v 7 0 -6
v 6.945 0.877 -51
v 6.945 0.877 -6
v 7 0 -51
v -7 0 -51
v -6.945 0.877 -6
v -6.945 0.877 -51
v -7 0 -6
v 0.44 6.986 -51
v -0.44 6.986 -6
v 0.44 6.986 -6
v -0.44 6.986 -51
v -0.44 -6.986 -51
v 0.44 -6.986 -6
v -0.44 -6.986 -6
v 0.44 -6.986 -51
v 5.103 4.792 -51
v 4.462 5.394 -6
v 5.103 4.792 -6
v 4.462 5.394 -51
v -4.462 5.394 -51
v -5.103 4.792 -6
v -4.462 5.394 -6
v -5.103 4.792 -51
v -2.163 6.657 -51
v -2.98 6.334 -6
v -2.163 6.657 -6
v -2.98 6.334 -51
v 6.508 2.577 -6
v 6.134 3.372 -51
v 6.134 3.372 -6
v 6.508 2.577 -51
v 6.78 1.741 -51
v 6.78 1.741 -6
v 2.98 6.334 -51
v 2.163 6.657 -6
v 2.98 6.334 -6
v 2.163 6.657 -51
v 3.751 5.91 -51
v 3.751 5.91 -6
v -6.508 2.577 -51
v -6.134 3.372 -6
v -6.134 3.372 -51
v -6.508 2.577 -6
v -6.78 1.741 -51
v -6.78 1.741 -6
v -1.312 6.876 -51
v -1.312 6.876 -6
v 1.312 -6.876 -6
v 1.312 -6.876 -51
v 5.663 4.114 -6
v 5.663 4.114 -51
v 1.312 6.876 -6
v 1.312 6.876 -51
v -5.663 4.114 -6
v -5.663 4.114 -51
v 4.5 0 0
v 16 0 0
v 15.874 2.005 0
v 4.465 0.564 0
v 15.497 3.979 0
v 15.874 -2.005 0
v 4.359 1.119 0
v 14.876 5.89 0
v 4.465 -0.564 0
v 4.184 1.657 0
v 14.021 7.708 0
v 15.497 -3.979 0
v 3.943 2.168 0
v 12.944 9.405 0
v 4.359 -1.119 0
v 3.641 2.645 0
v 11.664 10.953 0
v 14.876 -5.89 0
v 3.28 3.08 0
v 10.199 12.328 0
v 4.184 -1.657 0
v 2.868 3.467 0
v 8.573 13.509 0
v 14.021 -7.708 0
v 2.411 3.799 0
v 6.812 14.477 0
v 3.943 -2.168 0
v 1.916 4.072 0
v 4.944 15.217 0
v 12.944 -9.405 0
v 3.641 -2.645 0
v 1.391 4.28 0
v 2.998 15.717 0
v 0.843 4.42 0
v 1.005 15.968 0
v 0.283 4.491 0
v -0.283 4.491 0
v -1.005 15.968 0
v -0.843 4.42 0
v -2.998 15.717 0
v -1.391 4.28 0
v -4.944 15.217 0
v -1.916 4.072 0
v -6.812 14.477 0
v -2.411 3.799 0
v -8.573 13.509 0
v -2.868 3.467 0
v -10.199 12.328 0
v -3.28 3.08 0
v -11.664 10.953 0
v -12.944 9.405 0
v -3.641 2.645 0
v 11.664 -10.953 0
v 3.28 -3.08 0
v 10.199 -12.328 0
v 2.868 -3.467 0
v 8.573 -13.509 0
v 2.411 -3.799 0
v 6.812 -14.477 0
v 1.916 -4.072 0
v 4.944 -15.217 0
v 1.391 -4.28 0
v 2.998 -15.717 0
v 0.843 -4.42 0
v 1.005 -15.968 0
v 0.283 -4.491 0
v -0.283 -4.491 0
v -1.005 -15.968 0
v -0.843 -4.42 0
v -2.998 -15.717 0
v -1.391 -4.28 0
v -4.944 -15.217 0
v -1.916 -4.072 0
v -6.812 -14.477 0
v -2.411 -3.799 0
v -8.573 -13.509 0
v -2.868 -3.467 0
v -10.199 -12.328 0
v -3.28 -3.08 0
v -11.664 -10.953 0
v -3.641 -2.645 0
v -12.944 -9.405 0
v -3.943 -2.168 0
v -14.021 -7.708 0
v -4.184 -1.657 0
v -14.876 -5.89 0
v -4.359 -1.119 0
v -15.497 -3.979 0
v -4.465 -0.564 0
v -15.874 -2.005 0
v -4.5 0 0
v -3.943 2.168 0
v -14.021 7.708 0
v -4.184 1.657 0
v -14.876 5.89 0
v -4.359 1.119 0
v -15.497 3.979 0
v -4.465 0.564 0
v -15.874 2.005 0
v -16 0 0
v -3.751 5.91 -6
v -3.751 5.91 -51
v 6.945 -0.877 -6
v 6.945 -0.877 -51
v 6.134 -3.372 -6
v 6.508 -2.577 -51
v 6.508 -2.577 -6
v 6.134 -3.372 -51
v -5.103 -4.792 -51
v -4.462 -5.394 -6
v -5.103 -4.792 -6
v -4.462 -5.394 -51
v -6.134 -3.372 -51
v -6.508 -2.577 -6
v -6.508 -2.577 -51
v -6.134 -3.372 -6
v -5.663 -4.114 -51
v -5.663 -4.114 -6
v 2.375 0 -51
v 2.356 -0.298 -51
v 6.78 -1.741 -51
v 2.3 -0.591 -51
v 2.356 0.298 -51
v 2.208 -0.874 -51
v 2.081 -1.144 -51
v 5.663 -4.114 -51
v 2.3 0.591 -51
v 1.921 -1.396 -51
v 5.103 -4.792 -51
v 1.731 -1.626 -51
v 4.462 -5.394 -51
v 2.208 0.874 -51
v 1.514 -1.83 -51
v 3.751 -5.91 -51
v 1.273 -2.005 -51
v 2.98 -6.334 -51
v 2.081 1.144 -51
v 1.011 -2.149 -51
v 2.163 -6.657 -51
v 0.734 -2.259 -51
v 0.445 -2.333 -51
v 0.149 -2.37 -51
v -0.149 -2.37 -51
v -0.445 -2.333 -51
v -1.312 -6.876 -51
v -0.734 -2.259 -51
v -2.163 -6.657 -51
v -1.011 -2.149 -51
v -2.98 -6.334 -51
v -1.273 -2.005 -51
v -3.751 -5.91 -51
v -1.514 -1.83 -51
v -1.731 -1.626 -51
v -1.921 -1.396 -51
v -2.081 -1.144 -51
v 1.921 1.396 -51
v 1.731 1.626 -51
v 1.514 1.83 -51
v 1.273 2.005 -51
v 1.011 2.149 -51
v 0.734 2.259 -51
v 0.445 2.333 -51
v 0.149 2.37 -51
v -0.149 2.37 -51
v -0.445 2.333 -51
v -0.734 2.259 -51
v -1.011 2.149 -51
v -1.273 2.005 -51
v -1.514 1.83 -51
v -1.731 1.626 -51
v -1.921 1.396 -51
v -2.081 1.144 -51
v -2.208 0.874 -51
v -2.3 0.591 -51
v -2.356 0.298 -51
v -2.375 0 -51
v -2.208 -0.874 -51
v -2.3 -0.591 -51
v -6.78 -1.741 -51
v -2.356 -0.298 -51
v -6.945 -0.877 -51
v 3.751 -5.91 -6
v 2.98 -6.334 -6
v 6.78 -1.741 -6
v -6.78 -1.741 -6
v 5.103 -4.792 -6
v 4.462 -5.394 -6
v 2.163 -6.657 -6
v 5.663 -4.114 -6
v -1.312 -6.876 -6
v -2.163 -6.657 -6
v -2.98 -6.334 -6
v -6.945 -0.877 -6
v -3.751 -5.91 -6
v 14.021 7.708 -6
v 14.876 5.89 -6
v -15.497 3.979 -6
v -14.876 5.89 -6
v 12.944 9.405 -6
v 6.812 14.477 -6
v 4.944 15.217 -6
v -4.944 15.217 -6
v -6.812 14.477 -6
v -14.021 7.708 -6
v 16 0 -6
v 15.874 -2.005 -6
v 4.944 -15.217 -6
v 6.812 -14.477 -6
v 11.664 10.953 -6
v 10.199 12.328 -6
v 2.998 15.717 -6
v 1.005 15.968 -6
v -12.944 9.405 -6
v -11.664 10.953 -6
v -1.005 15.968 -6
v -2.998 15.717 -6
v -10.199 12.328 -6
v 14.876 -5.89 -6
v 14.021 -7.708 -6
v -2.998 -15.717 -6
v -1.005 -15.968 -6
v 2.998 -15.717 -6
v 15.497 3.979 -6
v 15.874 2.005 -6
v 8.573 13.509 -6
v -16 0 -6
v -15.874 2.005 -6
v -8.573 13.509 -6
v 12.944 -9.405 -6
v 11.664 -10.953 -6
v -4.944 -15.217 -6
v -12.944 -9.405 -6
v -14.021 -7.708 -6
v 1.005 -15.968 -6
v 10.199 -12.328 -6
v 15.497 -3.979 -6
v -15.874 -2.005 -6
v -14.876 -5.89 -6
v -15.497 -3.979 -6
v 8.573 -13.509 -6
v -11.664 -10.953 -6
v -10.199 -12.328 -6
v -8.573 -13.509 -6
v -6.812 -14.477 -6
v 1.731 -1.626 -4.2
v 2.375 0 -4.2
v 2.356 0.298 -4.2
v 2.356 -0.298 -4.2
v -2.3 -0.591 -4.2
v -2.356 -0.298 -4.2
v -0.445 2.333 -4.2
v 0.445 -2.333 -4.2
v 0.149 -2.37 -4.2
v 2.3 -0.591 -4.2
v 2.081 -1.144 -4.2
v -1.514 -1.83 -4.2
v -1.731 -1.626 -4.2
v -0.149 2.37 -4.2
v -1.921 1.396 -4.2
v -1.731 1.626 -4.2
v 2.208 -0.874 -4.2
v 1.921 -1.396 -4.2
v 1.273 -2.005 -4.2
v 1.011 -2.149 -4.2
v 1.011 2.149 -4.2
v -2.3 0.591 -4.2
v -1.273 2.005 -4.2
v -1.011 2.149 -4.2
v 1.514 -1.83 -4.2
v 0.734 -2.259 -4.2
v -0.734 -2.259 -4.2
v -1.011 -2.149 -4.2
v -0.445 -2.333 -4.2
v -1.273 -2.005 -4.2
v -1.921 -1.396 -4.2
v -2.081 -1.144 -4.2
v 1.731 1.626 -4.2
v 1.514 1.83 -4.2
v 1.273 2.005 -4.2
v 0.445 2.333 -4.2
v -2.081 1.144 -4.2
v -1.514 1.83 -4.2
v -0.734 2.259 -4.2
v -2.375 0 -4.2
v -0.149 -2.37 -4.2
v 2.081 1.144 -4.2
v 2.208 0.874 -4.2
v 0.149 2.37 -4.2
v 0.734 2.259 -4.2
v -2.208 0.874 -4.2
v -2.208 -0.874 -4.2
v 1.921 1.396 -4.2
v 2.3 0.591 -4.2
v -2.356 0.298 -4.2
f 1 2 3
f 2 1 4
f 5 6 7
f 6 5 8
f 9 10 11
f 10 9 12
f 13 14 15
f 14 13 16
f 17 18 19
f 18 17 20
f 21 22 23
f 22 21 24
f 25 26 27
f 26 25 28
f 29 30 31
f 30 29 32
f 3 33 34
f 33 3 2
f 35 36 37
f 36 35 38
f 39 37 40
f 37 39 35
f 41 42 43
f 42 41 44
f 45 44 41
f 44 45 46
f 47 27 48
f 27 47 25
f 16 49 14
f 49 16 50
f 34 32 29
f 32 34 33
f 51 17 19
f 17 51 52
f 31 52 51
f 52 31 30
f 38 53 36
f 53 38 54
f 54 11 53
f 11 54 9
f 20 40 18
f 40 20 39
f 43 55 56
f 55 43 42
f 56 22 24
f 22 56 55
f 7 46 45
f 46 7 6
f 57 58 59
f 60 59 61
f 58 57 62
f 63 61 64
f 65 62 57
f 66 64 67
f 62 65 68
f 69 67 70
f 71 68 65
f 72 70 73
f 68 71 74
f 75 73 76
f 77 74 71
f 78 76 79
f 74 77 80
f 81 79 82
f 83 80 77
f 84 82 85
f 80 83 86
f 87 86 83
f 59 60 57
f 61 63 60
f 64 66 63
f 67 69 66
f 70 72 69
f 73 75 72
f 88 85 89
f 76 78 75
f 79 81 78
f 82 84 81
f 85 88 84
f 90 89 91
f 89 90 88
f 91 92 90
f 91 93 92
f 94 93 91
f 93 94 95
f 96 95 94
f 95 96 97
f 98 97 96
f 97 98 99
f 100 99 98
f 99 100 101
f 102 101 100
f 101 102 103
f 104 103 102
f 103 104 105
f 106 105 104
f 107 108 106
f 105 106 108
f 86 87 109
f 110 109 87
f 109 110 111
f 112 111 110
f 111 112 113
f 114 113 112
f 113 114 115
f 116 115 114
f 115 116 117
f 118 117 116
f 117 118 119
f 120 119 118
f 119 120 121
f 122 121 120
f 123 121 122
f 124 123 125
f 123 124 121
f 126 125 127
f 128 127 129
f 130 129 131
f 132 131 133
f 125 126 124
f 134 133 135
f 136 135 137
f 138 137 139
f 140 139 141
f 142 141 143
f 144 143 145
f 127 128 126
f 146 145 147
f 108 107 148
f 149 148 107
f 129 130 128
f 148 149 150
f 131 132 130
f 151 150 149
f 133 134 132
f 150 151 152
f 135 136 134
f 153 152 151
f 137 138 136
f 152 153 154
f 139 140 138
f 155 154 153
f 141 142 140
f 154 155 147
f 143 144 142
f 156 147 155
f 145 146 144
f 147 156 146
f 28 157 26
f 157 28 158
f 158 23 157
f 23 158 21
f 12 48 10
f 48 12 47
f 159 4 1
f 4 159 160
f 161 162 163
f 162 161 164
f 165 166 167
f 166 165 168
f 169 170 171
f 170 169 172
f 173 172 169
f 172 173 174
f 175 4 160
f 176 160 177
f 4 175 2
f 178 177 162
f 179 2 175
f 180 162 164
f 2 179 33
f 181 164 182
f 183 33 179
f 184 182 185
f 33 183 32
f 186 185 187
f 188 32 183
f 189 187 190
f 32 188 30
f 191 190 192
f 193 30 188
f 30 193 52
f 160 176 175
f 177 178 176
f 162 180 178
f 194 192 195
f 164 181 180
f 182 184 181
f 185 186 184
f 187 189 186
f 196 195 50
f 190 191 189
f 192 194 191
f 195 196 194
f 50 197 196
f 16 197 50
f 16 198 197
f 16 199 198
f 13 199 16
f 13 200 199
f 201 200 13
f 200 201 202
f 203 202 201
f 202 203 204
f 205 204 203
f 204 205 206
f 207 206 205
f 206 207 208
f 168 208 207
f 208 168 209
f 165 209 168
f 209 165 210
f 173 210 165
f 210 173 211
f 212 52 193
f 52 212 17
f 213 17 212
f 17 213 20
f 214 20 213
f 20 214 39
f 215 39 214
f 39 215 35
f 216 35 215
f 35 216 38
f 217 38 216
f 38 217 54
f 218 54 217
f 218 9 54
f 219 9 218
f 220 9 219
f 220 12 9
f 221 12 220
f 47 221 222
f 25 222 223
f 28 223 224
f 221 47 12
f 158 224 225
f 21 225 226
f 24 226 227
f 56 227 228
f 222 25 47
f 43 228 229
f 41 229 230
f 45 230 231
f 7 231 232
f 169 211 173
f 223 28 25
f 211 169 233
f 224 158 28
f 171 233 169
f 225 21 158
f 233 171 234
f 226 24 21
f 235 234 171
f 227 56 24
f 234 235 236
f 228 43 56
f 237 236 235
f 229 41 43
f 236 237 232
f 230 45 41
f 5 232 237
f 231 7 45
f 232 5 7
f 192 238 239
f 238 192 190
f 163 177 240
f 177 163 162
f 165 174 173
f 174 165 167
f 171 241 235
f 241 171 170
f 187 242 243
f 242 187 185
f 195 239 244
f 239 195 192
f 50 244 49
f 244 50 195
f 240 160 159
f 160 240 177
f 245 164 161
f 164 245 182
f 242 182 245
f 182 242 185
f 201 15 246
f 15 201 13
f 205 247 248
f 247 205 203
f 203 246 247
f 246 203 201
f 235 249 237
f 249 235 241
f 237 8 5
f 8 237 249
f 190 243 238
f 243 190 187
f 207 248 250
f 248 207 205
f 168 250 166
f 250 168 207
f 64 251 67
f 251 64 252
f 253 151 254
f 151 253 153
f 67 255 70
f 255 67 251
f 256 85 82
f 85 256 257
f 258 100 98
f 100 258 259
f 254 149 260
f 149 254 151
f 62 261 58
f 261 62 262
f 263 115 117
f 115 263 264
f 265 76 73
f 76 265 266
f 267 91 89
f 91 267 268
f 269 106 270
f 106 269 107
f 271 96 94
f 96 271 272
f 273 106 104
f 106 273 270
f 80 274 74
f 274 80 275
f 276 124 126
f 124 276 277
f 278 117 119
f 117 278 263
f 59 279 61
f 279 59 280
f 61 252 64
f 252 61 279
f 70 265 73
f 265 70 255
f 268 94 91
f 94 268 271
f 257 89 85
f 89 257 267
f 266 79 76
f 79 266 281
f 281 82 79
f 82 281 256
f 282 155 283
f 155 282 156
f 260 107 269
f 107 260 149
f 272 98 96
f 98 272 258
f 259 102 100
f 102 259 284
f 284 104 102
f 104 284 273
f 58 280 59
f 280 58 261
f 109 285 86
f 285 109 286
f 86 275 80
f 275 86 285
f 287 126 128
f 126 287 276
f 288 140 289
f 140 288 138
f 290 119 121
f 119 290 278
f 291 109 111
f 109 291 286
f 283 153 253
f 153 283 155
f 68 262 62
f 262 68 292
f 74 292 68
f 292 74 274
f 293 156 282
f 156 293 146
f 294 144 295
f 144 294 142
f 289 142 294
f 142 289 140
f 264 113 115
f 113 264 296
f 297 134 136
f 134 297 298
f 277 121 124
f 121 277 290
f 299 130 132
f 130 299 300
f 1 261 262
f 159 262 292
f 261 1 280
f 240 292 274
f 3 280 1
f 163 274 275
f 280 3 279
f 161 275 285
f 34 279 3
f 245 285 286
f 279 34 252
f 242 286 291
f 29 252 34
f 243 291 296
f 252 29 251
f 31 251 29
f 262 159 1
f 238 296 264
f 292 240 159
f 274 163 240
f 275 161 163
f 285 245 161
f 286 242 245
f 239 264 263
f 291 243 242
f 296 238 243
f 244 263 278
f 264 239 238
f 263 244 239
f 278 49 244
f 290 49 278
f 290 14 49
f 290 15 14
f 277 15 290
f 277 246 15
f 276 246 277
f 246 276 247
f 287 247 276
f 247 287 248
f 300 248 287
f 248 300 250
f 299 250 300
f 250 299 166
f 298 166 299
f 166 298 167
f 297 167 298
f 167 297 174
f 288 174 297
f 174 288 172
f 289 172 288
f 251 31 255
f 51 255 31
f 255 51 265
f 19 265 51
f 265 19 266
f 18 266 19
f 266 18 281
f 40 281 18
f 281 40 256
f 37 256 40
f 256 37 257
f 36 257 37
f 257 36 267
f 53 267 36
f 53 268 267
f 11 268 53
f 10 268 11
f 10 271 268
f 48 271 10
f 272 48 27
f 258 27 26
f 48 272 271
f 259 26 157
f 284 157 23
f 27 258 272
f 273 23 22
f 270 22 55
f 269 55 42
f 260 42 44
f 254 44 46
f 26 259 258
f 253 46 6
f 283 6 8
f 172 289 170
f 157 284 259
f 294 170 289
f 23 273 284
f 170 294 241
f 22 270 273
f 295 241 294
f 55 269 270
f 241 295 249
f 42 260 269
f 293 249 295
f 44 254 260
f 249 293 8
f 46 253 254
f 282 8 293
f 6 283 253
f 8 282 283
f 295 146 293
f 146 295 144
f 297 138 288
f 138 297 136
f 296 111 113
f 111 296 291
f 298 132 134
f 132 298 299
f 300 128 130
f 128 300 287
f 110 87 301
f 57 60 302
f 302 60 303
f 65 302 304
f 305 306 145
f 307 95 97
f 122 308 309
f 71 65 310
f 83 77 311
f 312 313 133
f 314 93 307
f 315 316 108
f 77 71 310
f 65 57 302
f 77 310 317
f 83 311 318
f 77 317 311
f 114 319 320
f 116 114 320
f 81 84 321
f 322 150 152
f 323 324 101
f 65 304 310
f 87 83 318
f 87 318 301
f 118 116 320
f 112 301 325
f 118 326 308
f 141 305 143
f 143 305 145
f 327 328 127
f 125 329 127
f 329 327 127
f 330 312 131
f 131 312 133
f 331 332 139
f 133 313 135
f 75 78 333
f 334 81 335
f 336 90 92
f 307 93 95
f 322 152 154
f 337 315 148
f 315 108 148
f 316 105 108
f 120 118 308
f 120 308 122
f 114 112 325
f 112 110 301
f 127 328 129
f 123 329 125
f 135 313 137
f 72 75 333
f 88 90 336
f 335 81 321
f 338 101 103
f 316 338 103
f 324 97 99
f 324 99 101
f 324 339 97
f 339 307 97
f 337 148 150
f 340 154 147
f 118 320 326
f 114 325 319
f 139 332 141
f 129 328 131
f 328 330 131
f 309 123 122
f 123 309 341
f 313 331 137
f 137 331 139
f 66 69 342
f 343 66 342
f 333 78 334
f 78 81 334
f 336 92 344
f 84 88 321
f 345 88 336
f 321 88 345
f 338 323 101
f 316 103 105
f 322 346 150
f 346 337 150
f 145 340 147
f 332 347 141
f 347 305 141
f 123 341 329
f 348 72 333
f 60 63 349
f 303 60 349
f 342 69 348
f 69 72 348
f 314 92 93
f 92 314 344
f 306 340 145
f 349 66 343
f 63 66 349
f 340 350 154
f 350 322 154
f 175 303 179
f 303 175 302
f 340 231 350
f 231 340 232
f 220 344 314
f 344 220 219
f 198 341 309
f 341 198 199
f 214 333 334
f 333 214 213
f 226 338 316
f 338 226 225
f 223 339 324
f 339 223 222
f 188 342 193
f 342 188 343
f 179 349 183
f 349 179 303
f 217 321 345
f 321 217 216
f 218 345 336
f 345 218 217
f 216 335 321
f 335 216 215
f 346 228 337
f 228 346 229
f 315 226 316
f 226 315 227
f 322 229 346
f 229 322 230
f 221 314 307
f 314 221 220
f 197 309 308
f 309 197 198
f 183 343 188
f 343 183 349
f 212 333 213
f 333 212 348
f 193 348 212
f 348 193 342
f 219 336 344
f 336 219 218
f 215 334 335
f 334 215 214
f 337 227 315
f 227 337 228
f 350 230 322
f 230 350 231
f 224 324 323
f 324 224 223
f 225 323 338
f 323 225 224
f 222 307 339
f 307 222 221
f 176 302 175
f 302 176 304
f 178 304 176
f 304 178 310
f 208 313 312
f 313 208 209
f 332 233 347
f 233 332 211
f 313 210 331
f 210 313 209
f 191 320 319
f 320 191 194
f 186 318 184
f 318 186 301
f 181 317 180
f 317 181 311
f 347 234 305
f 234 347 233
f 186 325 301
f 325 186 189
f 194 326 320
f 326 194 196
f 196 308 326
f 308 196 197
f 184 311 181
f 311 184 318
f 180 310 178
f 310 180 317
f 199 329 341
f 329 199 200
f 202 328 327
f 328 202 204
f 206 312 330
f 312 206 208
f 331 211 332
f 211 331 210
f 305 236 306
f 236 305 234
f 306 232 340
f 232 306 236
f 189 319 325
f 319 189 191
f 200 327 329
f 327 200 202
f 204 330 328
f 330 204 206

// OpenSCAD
$fn = 50;


difference() {
	union() {
		translate(v = [0, 0, -51.0000000000]) {
			cylinder(h = 51, r = 7.0000000000);
		}
		translate(v = [0, 0, -6.0000000000]) {
			cylinder(h = 6, r = 16.0000000000);
		}
	}
	union() {
		translate(v = [0, 0, 0]) {
			rotate(a = [0, 0, 0]) {
				difference() {
					union() {
						#translate(v = [0, 0, -51.0000000000]) {
							cylinder(h = 51, r = 2.2500000000);
						}
						#translate(v = [0, 0, -4.2000000000]) {
							cylinder(h = 4.2000000000, r = 7.0000000000, r1 = 2.3750000000, r2 = 4.5000000000);
						}
						#translate(v = [0, 0, -51.0000000000]) {
							cylinder(h = 51, r = 2.3750000000);
						}
						#translate(v = [0, 0, -51.0000000000]) {
							cylinder(h = 51, r = 2.2500000000);
						}
					}
					union();
				}
			}
		}
	}
}
